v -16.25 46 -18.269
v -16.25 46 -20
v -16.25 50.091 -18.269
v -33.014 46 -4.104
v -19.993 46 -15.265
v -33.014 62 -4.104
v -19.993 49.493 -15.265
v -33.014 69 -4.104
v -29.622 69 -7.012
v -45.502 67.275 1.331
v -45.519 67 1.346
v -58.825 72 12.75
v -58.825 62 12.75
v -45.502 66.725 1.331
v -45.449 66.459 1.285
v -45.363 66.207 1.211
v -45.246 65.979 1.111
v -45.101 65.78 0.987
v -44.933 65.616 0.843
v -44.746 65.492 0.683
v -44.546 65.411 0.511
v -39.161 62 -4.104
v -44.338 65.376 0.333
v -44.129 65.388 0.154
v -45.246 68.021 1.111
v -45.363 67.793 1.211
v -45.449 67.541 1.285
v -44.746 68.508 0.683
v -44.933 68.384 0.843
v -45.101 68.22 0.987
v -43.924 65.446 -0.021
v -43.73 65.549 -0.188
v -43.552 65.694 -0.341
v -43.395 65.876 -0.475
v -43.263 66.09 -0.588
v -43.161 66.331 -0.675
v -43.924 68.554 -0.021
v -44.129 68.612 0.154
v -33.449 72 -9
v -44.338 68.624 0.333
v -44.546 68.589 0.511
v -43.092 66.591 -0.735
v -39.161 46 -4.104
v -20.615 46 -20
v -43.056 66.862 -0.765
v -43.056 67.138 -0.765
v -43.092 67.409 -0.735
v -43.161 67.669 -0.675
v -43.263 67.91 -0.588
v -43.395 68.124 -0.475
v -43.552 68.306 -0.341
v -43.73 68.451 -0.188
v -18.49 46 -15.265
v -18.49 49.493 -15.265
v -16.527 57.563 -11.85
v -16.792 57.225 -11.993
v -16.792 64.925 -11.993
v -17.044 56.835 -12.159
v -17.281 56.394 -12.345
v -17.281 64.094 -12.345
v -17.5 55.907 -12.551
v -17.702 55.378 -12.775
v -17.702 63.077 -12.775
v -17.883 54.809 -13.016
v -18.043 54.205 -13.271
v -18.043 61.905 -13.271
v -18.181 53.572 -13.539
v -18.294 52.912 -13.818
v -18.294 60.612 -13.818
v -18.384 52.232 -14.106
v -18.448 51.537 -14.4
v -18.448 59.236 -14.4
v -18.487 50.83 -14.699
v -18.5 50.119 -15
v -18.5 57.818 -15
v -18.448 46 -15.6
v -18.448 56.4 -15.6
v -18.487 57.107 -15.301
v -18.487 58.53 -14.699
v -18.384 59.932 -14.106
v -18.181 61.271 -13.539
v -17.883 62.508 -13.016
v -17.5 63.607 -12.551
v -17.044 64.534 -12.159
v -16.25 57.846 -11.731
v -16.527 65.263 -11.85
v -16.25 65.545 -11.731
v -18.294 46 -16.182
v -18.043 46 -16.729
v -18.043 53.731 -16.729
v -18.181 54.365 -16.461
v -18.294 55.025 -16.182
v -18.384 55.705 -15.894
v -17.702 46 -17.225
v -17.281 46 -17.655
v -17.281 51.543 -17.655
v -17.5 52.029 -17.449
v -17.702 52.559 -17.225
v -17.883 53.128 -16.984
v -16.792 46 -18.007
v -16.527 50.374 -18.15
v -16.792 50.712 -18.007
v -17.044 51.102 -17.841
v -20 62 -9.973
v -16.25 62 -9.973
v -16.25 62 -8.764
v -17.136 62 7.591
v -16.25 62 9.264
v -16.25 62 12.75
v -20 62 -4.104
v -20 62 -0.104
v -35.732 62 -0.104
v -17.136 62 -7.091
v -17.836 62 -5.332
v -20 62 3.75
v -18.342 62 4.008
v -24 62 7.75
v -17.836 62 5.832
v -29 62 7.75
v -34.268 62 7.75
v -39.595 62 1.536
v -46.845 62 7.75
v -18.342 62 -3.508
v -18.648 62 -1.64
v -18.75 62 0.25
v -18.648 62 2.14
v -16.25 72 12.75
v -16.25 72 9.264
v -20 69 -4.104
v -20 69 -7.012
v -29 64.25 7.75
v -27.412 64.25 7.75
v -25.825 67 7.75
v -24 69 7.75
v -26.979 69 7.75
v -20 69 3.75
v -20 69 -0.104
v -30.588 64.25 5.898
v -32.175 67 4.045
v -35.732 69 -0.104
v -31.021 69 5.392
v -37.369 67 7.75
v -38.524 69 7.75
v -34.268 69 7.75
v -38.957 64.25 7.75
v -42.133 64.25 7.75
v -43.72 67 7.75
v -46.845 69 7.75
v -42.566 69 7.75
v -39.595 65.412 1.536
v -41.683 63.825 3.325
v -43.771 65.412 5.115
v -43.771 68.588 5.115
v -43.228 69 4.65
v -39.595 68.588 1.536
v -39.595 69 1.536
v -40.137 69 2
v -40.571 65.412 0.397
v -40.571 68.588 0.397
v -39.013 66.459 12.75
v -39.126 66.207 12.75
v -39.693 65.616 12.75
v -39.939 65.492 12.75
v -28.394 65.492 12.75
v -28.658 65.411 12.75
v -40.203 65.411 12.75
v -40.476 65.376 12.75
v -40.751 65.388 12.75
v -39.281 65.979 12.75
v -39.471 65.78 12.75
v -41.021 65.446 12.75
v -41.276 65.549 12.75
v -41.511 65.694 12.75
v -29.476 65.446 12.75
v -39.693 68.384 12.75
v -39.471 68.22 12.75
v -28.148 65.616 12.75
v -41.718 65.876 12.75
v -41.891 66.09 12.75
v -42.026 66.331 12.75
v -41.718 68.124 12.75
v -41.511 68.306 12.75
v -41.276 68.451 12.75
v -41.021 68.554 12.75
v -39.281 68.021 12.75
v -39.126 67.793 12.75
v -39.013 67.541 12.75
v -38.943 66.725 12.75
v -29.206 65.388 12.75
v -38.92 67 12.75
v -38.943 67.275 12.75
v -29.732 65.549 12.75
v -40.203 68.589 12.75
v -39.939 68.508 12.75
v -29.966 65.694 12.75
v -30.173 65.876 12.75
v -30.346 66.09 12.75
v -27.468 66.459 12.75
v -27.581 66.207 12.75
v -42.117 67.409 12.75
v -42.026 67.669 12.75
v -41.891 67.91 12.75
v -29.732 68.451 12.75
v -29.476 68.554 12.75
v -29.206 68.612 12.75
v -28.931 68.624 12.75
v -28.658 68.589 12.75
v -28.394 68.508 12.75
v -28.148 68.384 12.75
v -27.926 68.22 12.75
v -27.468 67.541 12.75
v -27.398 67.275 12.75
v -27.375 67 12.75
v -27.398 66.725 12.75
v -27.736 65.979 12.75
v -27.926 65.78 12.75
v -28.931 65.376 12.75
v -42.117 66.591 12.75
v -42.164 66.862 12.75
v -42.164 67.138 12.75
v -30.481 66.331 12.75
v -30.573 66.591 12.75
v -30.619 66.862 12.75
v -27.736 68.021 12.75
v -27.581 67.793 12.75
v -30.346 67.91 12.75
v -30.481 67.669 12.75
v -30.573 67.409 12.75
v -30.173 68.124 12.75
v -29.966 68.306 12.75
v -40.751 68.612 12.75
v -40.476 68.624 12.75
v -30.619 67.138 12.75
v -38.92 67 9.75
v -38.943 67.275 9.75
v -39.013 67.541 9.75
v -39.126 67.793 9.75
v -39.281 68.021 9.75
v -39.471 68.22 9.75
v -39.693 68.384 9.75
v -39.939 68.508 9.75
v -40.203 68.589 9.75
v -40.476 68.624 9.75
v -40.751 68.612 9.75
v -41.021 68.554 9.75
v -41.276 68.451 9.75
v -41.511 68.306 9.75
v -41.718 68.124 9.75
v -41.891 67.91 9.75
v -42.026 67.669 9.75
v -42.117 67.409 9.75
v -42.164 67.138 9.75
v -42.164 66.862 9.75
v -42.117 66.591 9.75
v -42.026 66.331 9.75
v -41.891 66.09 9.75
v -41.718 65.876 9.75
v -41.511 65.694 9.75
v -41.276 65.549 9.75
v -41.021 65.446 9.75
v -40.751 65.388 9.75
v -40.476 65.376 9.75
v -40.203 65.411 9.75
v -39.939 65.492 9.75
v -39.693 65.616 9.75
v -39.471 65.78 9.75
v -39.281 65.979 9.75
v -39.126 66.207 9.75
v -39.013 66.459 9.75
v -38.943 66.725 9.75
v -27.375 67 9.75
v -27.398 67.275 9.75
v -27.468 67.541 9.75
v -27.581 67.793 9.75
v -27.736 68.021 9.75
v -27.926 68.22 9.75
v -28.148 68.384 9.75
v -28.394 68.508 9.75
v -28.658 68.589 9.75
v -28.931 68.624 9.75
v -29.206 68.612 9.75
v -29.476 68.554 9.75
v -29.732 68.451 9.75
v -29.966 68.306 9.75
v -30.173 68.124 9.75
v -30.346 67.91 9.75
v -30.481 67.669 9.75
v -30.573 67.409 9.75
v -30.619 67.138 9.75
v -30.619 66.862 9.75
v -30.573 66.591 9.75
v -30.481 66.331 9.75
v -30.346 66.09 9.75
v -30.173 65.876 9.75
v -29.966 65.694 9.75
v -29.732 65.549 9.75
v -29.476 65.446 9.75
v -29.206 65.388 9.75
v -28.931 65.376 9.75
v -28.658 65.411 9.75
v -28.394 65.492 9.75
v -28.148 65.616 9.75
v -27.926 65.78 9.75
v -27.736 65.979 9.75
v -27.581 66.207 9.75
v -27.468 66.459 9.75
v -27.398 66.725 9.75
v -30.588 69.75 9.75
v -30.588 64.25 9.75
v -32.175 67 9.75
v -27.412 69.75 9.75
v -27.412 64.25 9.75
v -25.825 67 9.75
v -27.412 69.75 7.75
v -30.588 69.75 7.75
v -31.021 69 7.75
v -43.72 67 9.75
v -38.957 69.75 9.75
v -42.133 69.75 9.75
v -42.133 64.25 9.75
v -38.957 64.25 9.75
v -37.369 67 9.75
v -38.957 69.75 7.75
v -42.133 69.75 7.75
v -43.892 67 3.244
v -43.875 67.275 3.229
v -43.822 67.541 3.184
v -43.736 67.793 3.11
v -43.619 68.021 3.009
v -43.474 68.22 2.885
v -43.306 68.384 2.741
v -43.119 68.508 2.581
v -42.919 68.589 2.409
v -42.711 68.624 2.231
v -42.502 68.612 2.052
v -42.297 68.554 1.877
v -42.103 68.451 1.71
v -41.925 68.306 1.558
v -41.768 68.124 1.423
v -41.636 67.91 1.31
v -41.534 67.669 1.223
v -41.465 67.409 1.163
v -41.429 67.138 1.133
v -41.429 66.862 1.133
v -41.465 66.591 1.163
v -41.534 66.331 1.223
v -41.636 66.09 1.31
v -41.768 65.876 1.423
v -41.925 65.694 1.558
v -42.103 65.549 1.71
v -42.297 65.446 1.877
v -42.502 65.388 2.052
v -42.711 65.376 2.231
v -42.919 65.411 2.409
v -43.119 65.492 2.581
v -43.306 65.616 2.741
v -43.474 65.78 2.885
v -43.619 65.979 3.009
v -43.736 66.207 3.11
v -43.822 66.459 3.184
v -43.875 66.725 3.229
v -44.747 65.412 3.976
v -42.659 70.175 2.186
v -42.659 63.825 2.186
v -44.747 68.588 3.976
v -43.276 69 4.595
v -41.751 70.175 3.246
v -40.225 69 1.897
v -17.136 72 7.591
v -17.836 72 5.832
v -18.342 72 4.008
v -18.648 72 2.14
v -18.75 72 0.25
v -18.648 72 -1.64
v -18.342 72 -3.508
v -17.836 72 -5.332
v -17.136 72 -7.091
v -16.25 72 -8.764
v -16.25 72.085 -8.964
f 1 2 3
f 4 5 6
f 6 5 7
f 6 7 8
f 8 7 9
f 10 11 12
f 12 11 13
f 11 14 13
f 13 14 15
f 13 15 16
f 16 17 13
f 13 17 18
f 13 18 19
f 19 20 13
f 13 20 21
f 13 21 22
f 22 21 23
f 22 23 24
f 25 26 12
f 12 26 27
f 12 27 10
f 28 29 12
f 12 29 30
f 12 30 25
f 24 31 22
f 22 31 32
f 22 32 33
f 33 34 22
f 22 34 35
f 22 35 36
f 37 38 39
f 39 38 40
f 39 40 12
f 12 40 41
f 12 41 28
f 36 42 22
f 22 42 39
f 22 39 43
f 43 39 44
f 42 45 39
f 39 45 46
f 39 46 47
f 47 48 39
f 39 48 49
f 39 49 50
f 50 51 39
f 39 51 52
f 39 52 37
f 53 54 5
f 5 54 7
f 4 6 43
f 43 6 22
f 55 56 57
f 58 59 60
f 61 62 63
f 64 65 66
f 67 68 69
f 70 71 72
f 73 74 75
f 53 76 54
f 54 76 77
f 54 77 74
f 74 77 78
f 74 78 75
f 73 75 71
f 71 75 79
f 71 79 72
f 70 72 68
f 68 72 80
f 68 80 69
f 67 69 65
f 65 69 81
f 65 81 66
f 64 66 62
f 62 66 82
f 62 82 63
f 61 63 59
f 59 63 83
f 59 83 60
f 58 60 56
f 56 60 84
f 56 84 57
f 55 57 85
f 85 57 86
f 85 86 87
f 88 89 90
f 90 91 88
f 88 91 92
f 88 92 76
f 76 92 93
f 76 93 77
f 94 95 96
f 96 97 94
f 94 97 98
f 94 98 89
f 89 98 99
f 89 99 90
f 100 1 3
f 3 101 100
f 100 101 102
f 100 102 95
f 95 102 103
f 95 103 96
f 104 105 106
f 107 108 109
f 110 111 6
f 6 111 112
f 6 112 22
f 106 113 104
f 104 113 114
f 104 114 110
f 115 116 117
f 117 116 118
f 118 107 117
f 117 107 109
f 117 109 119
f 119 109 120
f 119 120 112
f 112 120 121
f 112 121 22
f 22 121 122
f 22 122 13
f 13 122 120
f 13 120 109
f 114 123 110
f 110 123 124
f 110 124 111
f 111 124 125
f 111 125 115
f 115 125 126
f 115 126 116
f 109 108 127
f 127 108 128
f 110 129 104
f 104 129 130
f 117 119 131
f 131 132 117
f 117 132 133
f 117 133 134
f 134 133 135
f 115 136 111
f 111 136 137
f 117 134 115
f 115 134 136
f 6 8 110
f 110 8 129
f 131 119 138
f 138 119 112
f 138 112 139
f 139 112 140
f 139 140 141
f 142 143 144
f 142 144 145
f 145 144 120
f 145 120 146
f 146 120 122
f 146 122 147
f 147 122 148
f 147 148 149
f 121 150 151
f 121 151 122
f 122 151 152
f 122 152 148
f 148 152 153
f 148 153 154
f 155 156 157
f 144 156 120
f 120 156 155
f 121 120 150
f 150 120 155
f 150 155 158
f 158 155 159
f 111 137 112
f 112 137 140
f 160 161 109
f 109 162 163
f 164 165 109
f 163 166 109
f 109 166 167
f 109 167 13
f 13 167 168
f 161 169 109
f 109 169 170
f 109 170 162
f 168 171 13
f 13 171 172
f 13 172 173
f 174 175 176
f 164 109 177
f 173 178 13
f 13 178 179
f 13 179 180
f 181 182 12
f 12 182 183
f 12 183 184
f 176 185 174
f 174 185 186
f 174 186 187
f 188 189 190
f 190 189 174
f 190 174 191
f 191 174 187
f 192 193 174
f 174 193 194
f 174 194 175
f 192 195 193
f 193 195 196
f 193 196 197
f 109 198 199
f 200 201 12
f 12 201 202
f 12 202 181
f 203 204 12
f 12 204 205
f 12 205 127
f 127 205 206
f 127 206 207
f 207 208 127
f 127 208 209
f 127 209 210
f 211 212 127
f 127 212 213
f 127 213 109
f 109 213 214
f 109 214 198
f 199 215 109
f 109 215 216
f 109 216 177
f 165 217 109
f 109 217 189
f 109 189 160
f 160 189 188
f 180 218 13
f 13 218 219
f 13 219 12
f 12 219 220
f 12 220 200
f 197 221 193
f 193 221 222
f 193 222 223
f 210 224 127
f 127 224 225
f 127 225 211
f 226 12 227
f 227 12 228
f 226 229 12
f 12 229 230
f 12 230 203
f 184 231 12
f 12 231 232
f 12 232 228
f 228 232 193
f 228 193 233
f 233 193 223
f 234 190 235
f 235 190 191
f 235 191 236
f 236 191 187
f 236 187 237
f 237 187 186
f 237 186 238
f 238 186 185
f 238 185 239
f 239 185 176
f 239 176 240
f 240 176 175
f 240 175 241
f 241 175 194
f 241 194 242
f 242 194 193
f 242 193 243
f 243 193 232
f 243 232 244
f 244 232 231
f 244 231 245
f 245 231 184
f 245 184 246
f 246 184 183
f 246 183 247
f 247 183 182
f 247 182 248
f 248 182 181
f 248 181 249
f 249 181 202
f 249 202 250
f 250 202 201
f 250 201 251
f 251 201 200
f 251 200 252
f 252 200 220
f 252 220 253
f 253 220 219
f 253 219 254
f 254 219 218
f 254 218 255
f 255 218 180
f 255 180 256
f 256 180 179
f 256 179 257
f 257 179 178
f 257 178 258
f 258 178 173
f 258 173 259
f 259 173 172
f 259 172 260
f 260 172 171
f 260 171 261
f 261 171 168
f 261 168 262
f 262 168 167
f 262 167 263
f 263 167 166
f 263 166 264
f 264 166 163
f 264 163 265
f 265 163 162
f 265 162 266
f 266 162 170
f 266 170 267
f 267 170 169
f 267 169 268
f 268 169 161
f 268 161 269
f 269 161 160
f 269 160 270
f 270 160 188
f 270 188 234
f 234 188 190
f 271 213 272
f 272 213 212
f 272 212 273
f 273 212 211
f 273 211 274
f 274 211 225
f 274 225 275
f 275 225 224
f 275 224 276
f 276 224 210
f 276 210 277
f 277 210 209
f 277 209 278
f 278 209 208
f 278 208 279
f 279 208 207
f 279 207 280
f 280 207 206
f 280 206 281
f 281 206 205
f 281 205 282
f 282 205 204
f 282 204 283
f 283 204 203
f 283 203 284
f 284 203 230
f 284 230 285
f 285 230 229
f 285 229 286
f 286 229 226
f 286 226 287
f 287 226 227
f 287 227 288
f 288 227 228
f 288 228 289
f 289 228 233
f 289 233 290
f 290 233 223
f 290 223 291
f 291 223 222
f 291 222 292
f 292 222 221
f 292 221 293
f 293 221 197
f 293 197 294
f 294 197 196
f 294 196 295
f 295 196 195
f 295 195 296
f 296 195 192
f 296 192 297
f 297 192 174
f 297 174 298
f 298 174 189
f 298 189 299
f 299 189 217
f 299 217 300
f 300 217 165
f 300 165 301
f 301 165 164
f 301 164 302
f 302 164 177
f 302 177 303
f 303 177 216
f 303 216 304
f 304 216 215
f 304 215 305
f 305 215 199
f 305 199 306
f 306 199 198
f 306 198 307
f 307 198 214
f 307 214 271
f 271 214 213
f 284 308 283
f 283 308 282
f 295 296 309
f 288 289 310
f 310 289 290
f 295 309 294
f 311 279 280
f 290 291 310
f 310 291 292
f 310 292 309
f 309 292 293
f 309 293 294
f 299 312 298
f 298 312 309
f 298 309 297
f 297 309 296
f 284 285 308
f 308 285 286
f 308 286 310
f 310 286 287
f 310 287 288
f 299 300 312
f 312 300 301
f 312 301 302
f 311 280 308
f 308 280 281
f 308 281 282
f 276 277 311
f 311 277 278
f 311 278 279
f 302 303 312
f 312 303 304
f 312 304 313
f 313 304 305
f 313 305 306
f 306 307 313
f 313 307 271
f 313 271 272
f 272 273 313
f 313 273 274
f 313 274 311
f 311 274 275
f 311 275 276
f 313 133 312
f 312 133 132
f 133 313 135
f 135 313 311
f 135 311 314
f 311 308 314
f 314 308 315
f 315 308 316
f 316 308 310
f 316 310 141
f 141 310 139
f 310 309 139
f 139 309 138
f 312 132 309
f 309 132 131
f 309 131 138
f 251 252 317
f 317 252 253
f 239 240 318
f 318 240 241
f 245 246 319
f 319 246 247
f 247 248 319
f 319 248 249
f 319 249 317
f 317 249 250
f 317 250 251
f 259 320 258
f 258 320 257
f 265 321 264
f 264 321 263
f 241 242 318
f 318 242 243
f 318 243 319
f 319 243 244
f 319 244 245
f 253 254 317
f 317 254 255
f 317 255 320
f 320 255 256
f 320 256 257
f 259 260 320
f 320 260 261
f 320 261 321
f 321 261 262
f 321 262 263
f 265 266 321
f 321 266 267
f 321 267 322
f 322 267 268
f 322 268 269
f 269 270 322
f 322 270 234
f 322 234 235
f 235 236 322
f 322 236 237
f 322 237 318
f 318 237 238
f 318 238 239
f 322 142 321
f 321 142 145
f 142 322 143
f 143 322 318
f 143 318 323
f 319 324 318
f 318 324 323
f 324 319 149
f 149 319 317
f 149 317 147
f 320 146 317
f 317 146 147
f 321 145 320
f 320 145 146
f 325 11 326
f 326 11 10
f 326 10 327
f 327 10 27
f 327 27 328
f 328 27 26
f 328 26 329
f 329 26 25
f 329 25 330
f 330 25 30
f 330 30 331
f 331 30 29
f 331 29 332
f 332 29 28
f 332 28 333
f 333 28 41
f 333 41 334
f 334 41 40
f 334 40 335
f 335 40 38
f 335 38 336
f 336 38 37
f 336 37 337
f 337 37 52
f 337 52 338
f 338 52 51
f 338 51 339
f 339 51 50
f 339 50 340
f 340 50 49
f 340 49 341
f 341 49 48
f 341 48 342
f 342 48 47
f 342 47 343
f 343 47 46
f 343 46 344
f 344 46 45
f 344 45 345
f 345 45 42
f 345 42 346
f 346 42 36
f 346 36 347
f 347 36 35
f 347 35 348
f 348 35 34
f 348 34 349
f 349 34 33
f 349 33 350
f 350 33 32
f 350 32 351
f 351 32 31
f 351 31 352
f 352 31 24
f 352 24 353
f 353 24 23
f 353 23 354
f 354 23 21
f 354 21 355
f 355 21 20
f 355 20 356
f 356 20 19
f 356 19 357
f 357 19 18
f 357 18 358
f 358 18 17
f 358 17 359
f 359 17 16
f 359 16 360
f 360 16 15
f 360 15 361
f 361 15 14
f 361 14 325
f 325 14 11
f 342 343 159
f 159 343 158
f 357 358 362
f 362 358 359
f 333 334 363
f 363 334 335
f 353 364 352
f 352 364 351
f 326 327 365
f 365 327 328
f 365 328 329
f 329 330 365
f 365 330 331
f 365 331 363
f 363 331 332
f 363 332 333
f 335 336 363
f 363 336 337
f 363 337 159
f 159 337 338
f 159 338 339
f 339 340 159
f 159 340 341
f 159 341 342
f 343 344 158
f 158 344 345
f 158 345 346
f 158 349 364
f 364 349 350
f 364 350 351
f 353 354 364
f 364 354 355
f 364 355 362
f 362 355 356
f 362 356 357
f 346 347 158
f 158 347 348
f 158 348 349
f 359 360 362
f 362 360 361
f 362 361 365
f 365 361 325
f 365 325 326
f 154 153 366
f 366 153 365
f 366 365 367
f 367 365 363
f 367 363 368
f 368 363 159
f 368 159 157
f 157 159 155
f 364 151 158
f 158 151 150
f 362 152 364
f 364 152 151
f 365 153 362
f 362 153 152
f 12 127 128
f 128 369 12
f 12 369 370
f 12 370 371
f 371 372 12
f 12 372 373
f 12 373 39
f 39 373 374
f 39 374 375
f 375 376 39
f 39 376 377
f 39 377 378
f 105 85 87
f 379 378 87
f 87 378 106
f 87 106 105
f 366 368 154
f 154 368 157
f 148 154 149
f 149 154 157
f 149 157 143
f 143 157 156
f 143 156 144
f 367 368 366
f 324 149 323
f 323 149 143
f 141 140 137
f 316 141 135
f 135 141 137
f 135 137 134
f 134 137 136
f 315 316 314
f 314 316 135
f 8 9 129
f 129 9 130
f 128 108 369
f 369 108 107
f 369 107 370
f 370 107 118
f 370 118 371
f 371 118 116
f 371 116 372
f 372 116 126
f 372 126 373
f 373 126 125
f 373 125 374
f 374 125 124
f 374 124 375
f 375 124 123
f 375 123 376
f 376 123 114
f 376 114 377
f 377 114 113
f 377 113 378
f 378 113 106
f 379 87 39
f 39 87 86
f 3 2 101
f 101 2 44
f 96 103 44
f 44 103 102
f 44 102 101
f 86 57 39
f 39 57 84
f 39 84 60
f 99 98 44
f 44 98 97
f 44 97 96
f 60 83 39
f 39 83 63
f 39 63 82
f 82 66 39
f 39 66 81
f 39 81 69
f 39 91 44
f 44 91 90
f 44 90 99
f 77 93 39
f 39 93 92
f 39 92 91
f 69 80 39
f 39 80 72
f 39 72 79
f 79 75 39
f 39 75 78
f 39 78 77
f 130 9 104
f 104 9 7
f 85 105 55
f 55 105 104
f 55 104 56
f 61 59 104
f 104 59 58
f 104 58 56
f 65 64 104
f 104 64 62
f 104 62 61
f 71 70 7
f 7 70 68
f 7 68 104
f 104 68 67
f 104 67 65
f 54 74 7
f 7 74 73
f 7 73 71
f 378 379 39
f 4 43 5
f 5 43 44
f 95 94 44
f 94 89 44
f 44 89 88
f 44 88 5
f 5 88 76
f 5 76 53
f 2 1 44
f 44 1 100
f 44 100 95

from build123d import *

# Parameters (mm, degrees)
CROQUIS1_R                              = 15.25
CROQUIS1_R_2                            = 2.125
SOPORTE_CAJA_REDUCTORA_DEPTH            = 20
CROQUIS3_R                              = 2.125
CORTAR_EXTRUIR1_DEPTH                   = 51.423828692
REDONDEO1_R                             = 5
BOSS_EXTRUDE1_DEPTH                     = 20
CUT_EXTRUDE1_REACH                      = 55.852
SKETCH2_R                               = 1.625
CUT_EXTRUDE2_DEPTH                      = 2
SKETCH4_R                               = 1.625
CUT_EXTRUDE3_DEPTH                      = 63.291652731
CUT_EXTRUDE4_START                      = -4.5
CUT_EXTRUDE4_DEPTH                      = 2
CROQUIS6_W                              = 4.75
CROQUIS6_H                              = 4.75
CORTAR_EXTRUIR17_DEPTH                  = 42.231056256
CROQUIS7_W                              = 60
CROQUIS7_H                              = 20
CORTAR_EXTRUIR18_DEPTH                  = 51.423828692
SALIENTE_EXTRUIR2_DEPTH                 = 49
SOPORTE_START                           = -15
SOPORTE_MOTOR_DEPTH                     = 15
CROQUIS12_R                             = 2.125
AGUJEROS_DE_SUJECION_A_BASE_DEPTH       = 84.087679592
TUERCA_START                            = -4
TUERCA_AGUJERO_DE_SUJECION_A_BASE_DEPTH = 10
SALIENTE_EXTRUIR4_DEPTH                 = 15
CORTAR_EXTRUIR19_DEPTH                  = 25
CROQUIS14_W                             = 50
CROQUIS14_H                             = 118
CORTAR_EXTRUIR22_DEPTH                  = 146.556045907
CROQUIS15_W                             = 10
CROQUIS15_H                             = 7
CORTAR_EXTRUIR23_DEPTH                  = 42.231056256
CORTAR_EXTRUIR24_DEPTH                  = 42.231056256
CROQUIS18_W                             = 40
CROQUIS18_H                             = 10
CORTAR_EXTRUIR25_DEPTH                  = 44.27311521
SALIENTE_EXTRUIR5_DEPTH                 = 10
CROQUIS20_R                             = 1
CORTAR_EXTRUIR26_DEPTH                  = 49.229270158
CORTAR_EXTRUIR27_REACH                  = 62.959
CORTAR_EXTRUIR27_END_RADIUS             = 15.25
CROQUIS21_R                             = 1.625
CROQUIS22_R                             = 2.125
CROQUIS22_R_2                           = 1
SALIENTE_EXTRUIR6_DEPTH                 = 10
CROQUIS23_R                             = 1.625
CORTAR_EXTRUIR28_DEPTH                  = 52.269508521
CORTAR_EXTRUIR29_START                  = -3
CORTAR_EXTRUIR29_DEPTH                  = 10
SALIENTE_EXTRUIR7_DEPTH                 = 10
CORTAR_EXTRUIR30_REACH                  = 72.235
CROQUIS27_R                             = 1.625
CORTAR_EXTRUIR31_REACH                  = 75.235
CORTAR_EXTRUIR31_START                  = -3
CORTAR_EXTRUIR32_REACH                  = 58.612
CROQUIS29_R                             = 1.625
CORTAR_EXTRUIR33_REACH                  = 61.112
CORTAR_EXTRUIR33_START                  = -2.5
CROQUIS35_W                             = 13.305418987
CROQUIS35_H                             = 6.826864192
CORTAR_EXTRUIR34_DEPTH                  = 63.931555098
CORTAR_EXTRUIR34_DEPTH_BACK             = 63.931555098
CORTAR_EXTRUIR35_START                  = -3
CORTAR_EXTRUIR35_DEPTH                  = 10
SALIENTE_EXTRUIR8_DEPTH                 = 10
SALIENTE_EXTRUIR9_DEPTH                 = 13
SALIENTE_EXTRUIR10_DEPTH                = 3
CROQUIS40_W                             = 106.583537839
CROQUIS40_H                             = 47.391515964
CORTAR_EXTRUIR36_DEPTH                  = 80.887064817
CORTAR_EXTRUIR36_DEPTH_BACK             = 80.887064817
CROQUIS41_W                             = 24.558856908
CROQUIS41_H                             = 18.206234432
CORTAR_EXTRUIR37_DEPTH                  = 80.887064817
CORTAR_EXTRUIR37_DEPTH_BACK             = 80.887064817
CROQUIS42_W                             = 39.793611955
CROQUIS42_H                             = 36.552695193
CORTAR_EXTRUIR38_DEPTH                  = 63.931555082
CORTAR_EXTRUIR38_DEPTH_BACK             = 63.931555082
SALIENTE_EXTRUIR11_DEPTH                = 3
CROQUIS44_R                             = 17.5
CORTAR_EXTRUIR39_DEPTH                  = 63.931555082
CORTAR_EXTRUIR39_DEPTH_BACK             = 63.931555082
SALIENTE_EXTRUIR12_DEPTH                = 16
CORTAR_EXTRUIR40_DEPTH                  = 66.79232953
SALIENTE_EXTRUIR14_DEPTH                = 3
CROQUIS48_R                             = 17.5
CORTAR_EXTRUIR41_DEPTH                  = 68.352658633
CORTAR_EXTRUIR41_DEPTH_BACK             = 68.352658633
CROQUIS49_R                             = 3.5
CORTAR_EXTRUIR42_DEPTH                  = 68.352658633
CROQUIS50_W                             = 95.776732481
CROQUIS50_H                             = 51.661294246
CORTAR_EXTRUIR43_DEPTH                  = 90.449033504
CORTAR_EXTRUIR43_DEPTH_BACK             = 90.449033504


with BuildPart() as part:
    # Croquis1 → Soporte caja reductora (new body)
    with BuildSketch(Plane(origin=(0, 0, 0), x_dir=(1, 0, 0), z_dir=(0, 1, 0))):
        Polygon((-30, -15.25), (-20, -15.25), (-20, -20), (20, -20), (20, -15.25), (30, -15.25), (30, -7.25), (20, -4.25), (20, 20), (-20, 20), (-20, -4.25), (-30, -7.25), align=None)
        with Locations(Location((0, 0, 0), (0, 0, 270))):
            Circle(CROQUIS1_R, mode=Mode.SUBTRACT)
        with Locations(Location((-15, 15, 0), (0, 0, 270))):
            Circle(CROQUIS1_R_2, mode=Mode.SUBTRACT)
        with Locations(Location((15, 15, 0), (0, 0, 270))):
            Circle(CROQUIS1_R_2, mode=Mode.SUBTRACT)
    extrude(amount=-SOPORTE_CAJA_REDUCTORA_DEPTH)

    # Croquis3 → Cortar-Extruir1 (cut, through all)
    with BuildSketch(Plane.XY.offset(15.25)):
        with Locations((-23.5, -10)):
            Circle(CROQUIS3_R)
        with Locations((23.5, -10)):
            Circle(CROQUIS3_R)
    extrude(amount=-CORTAR_EXTRUIR1_DEPTH, mode=Mode.SUBTRACT)

    # Redondeo1
    redondeo1_edges = [part.edges().sort_by_distance(p)[0] for p in [
        (-20, -10, -20),
        (20, -10, -20),
    ]]
    fillet(redondeo1_edges, radius=REDONDEO1_R)

    # Sketch1 → Boss-Extrude1 (add)
    with BuildSketch(Plane(origin=(0, 0, 0), x_dir=(1, 0, 0), z_dir=(0, 1, 0))):
        with BuildLine():
            Line((25.5, 15), (20, 15))
            ThreePointArc((20, 15), (18.535533906, 18.535533906), (15, 20))
            Line((15, 20), (30, 20))
            Line((30, 20), (30, 8))
            Line((30, 8), (25.5, 8))
            Line((25.5, 8), (25.5, 15))
        make_face()
    extrude(amount=-BOSS_EXTRUDE1_DEPTH)

    # Sketch2 → Cut-Extrude1 (cut, up to next)
    with BuildSketch(Plane(origin=(0, 0, -20), x_dir=(-1, 0, 0), z_dir=(0, 0, -1)), mode=Mode.PRIVATE) as cut_extrude1_sk1:
        with Locations((-22.75, -10)):
            Circle(SKETCH2_R)
    cut_extrude1_tool1 = extrude(cut_extrude1_sk1.sketch, amount=-CUT_EXTRUDE1_REACH, mode=Mode.PRIVATE) & part.part
    add(cut_extrude1_tool1.solids().sort_by_distance((22.75, -10, -20))[0], mode=Mode.SUBTRACT)

    # Sketch3 → Cut-Extrude2 (cut)
    with BuildSketch(Plane.XY.offset(-15)):
        Polygon((20, -11.58771324), (22.75, -13.175426481), (25.5, -11.58771324), (25.5, -8.41228676), (22.75, -6.824573519), (20, -8.41228676), align=None)
    extrude(amount=-CUT_EXTRUDE2_DEPTH, mode=Mode.SUBTRACT)

    # Sketch4 → Cut-Extrude3 (cut, through all)
    with BuildSketch(Plane.ZY.offset(-25.5)):
        with Locations((-12.25, -10)):
            Circle(SKETCH4_R)
    extrude(amount=-CUT_EXTRUDE3_DEPTH, mode=Mode.SUBTRACT)

    # Sketch5 → Cut-Extrude4 (cut)
    with BuildSketch(Plane(origin=(30, 0, 0), x_dir=(0, 0, -1), z_dir=(1, 0, 0)).offset(CUT_EXTRUDE4_START)):
        Polygon((15, -11.58771324), (15, -8.41228676), (12.25, -6.824573519), (9.5, -8.41228676), (9.5, -11.58771324), (12.25, -13.175426481), align=None)
    extrude(amount=CUT_EXTRUDE4_DEPTH, mode=Mode.SUBTRACT)

    # Croquis6 → Cortar-Extruir17 (cut, through all)
    with BuildSketch(Plane(origin=(0, 0, 0), x_dir=(1, 0, 0), z_dir=(0, 1, 0))):
        Polygon((0, -15.25), (-15.25, -15.25), (-15.25, -20), (15.25, -20), (15.25, -15.25), align=None)
        with Locations((-17.625, -17.625)):
            Rectangle(CROQUIS6_W, CROQUIS6_H)
        with BuildLine():
            ThreePointArc((0, -15.25), (-10.783378413, -10.783378413), (-15.25, 0))
            Line((-15.25, 0), (-15.25, -15.25))
            Line((-15.25, -15.25), (0, -15.25))
        make_face()
        with BuildLine():
            Line((15.25, -15.25), (15.25, 0))
            ThreePointArc((15.25, 0), (10.783378413, -10.783378413), (0, -15.25))
            Line((0, -15.25), (15.25, -15.25))
        make_face()
        with Locations((17.625, -17.625)):
            Rectangle(CROQUIS6_W, CROQUIS6_H)
    extrude(amount=-CORTAR_EXTRUIR17_DEPTH, mode=Mode.SUBTRACT)


with BuildPart() as body_2:
    # Simetría1: mirrored copy
    add(part.part.mirror(Plane.ZX))

    # Croquis8 → Saliente-Extruir2 (add)
    with BuildSketch(Plane(origin=(0, 20, 0), x_dir=(1, 0, 0), z_dir=(0, 1, 0))):
        with BuildLine():
            Line((-12.664515522, 20), (-11.040489496, 13.939052358))
            Line((-11.040489496, 13.939052358), (-10.315162126, 11.232093763))
            ThreePointArc((-10.315162126, 11.232093763), (0, 15.25), (10.315162126, 11.232093763))
            Line((10.315162126, 11.232093763), (10.817418481, 13.87928066))
            Line((10.817418481, 13.87928066), (11.978715476, 20))
            Line((11.978715476, 20), (-12.664515522, 20))
        make_face()
    extrude(amount=SALIENTE_EXTRUIR2_DEPTH)

    # Croquis9 → Soporte motor (add)
    with BuildSketch(Plane(origin=(0, 69, 0), x_dir=(1, 0, 0), z_dir=(0, 1, 0)).offset(SOPORTE_START)):
        with BuildLine():
            Line((-20, 15), (-20, -4.25))
            Line((-20, -4.25), (-30, -7.25))
            Line((-30, -7.25), (-30, -15.25))
            Line((-30, -15.25), (0, -15.25))
            Line((0, -15.25), (0, -14.75))
            ThreePointArc((0, -14.75), (-10.429825023, 10.429825023), (14.75, 0))
            Line((14.75, 0), (20, 0))
            Line((20, 0), (20, 13.936837101))
            Line((20, 13.936837101), (12.664515522, 20))
            Line((12.664515522, 20), (-15, 20))
            ThreePointArc((-15, 20), (-18.535533906, 18.535533906), (-20, 15))
        make_face()
    extrude(amount=-SOPORTE_MOTOR_DEPTH)

    # Croquis12 → Agujeros de sujecion a base (cut, through all)
    with BuildSketch(Plane.XY.offset(15.25)):
        with Locations((-23.5, 46.5)):
            Circle(CROQUIS12_R)
    extrude(amount=-AGUJEROS_DE_SUJECION_A_BASE_DEPTH, mode=Mode.SUBTRACT)

    # Croquis13 → Tuerca Agujero de sujecion a base (cut)
    with BuildSketch(Plane.XY.offset(15.25).offset(TUERCA_START)):
        Polygon((-20, 44.479274058), (-20, 48.520725942), (-23.5, 50.541451884), (-27, 48.520725942), (-27, 44.479274058), (-23.5, 42.458548116), align=None)
    extrude(amount=-TUERCA_AGUJERO_DE_SUJECION_A_BASE_DEPTH, mode=Mode.SUBTRACT)

    # Croquis10 → Saliente-Extruir4 (add)
    with BuildSketch(Plane(origin=(0, 69, 0), x_dir=(1, 0, 0), z_dir=(0, 1, 0))):
        with BuildLine():
            ThreePointArc((10.315162126, 11.232093763), (0, 15.25), (-10.315162126, 11.232093763))
            Line((-10.315162126, 11.232093763), (-10.16850369, 10.684757026))
            ThreePointArc((-10.16850369, 10.684757026), (0, 14.75), (10.16850369, 10.684757026))
            Line((10.16850369, 10.684757026), (10.315162126, 11.232093763))
        make_face()
    extrude(amount=-SALIENTE_EXTRUIR4_DEPTH)

    # Croquis11 → Cortar-Extruir19 (cut)
    with BuildSketch(Plane.XZ):
        with BuildLine():
            Line((15.25, 4.25), (20, 4.25))
            Line((20, 4.25), (21.972856468, 4.84185694))
            ThreePointArc((21.972856468, 4.84185694), (19.948931102, 10.40625523), (16.543503257, 15.25))
            Line((16.543503257, 15.25), (15.25, 15.25))
            Line((15.25, 15.25), (15.25, 4.25))
        make_face()
        with BuildLine():
            Line((21.972856468, 4.84185694), (30, 7.25))
            Line((30, 7.25), (30, 15.25))
            Line((30, 15.25), (16.543503257, 15.25))
            ThreePointArc((16.543503257, 15.25), (19.948931102, 10.40625523), (21.972856468, 4.84185694))
        make_face()
        with BuildLine():
            ThreePointArc((20, -15), (18.535533906, -18.535533906), (15, -20))
            Line((15, -20), (30, -20))
            Line((30, -20), (30, -8))
            Line((30, -8), (25.5, -8))
            Line((25.5, -8), (25.5, -15))
            Line((25.5, -15), (20, -15))
        make_face()
    extrude(amount=-CORTAR_EXTRUIR19_DEPTH, mode=Mode.SUBTRACT)

    # Simetría2: body 2 across face


with BuildPart() as part_1:
    add(part.part)

    # Croquis7 → Cortar-Extruir18 (cut, through all)
    with BuildSketch(Plane(origin=(0, 0, -20), x_dir=(-1, 0, 0), z_dir=(0, 0, -1))):
        with Locations((0, -10)):
            Rectangle(CROQUIS7_W, CROQUIS7_H)
    extrude(amount=-CORTAR_EXTRUIR18_DEPTH, mode=Mode.SUBTRACT)


with BuildPart() as body_2_1:
    add(body_2.part)
    add(body_2.part.mirror(Plane(origin=(-0.229209569, 69, -16.663998028), x_dir=(0, 0, 1), z_dir=(0, 1, 0))))

    # Croquis14 → Cortar-Extruir22 (cut, through all)
    with BuildSketch(Plane.XY.offset(15.25)):
        with Locations((-5, 79)):
            Rectangle(CROQUIS14_W, CROQUIS14_H)
    extrude(amount=-CORTAR_EXTRUIR22_DEPTH, mode=Mode.SUBTRACT)

    # Croquis15 → Cortar-Extruir23 (cut, through all)
    with BuildSketch(Plane.XZ):
        with Locations((-25, 7.75)):
            Rectangle(CROQUIS15_W, CROQUIS15_H)
    extrude(amount=-CORTAR_EXTRUIR23_DEPTH, mode=Mode.SUBTRACT)

    # Croquis16 → Cortar-Extruir24 (cut, through all)
    with BuildSketch(Plane.XZ):
        Polygon((-30, 15.25), (-15.25, 15.25), (-15.25, 12.75), (-20, 12.75), (-20, 11.25), (-30, 11.25), (-30, 12.75), align=None)
    extrude(amount=-CORTAR_EXTRUIR24_DEPTH, mode=Mode.SUBTRACT)

    # Croquis18 → Cortar-Extruir25 (cut, through all)
    with BuildSketch(Plane(origin=(0, 0, -20), x_dir=(-1, 0, 0), z_dir=(0, 0, -1))):
        with Locations((0, 5)):
            Rectangle(CROQUIS18_W, CROQUIS18_H)
    extrude(amount=-CORTAR_EXTRUIR25_DEPTH, mode=Mode.SUBTRACT)

    # Croquis19 → Saliente-Extruir5 (add)
    with BuildSketch(Plane(origin=(0, 20, 0), x_dir=(1, 0, 0), z_dir=(0, 1, 0))):
        Polygon((-20, -12.75), (-34, -12.75), (-34, -7.75), (-24, -7.75), (-20, -3.75), align=None)
    extrude(amount=-SALIENTE_EXTRUIR5_DEPTH)

    # Croquis20 → Cortar-Extruir26 (cut, through all)
    with BuildSketch(Plane(origin=(0, 0, 7.75), x_dir=(-1, 0, 0), z_dir=(0, 0, -1))):
        with Locations((29, 15)):
            Circle(CROQUIS20_R)
    extrude(amount=-CORTAR_EXTRUIR26_DEPTH, mode=Mode.SUBTRACT)

    # Cortar-Extruir27: up to this cylinder (the profile starts outside it)
    cortar_extruir27_end = Plane(origin=(0, 15, 0), z_dir=(0, -1, 0)) * Cylinder(CORTAR_EXTRUIR27_END_RADIUS, 157.418, mode=Mode.PRIVATE)
    # Croquis21 → Cortar-Extruir27 (cut, up to the surface)
    with BuildSketch(Plane(origin=(20, 0, 0), x_dir=(0, 0, -1), z_dir=(1, 0, 0)), mode=Mode.PRIVATE) as cortar_extruir27_sk1:
        with Locations((4.75, 15)):
            Circle(CROQUIS21_R)
    cortar_extruir27_tool1 = extrude(cortar_extruir27_sk1.sketch, amount=-CORTAR_EXTRUIR27_REACH, mode=Mode.PRIVATE) - cortar_extruir27_end
    add(cortar_extruir27_tool1.solids().sort_by_distance((20, 15, -4.75))[0], mode=Mode.SUBTRACT)

    # Croquis22 → Saliente-Extruir6 (add)
    with BuildSketch(Plane.XZ.offset(-10)):
        with Locations((-15, -15)):
            Circle(CROQUIS22_R)
        with Locations(Location((-15, -15, 0), (0, 0, 270))):
            Circle(CROQUIS22_R_2, mode=Mode.SUBTRACT)
        with Locations((15, -15)):
            Circle(CROQUIS22_R)
        with Locations(Location((15, -15, 0), (0, 0, 270))):
            Circle(CROQUIS22_R_2, mode=Mode.SUBTRACT)
    extrude(amount=-SALIENTE_EXTRUIR6_DEPTH)

    # Croquis23 → Cortar-Extruir28 (cut, through all)
    with BuildSketch(Plane(origin=(0, 0, -20), x_dir=(-1, 0, 0), z_dir=(0, 0, -1))):
        with Locations((0, 15)):
            Circle(CROQUIS23_R)
    extrude(amount=-CORTAR_EXTRUIR28_DEPTH, mode=Mode.SUBTRACT)

    # Croquis24 → Cortar-Extruir29 (cut)
    with BuildSketch(Plane(origin=(0, 0, -20), x_dir=(-1, 0, 0), z_dir=(0, 0, -1)).offset(CORTAR_EXTRUIR29_START)):
        Polygon((1.58771324, 12.25), (3.175426481, 15), (1.58771324, 17.75), (-1.58771324, 17.75), (-3.175426481, 15), (-1.58771324, 12.25), align=None)
    extrude(amount=-CORTAR_EXTRUIR29_DEPTH, mode=Mode.SUBTRACT)

    # Croquis26 → Saliente-Extruir7 (add)
    with BuildSketch(Plane.XZ.offset(-10)):
        Polygon((-34, 7.75), (-34, 12.75), (-58.825, 12.75), (-39.160527763, -4.104491148), (-20, -4.104491148), (-20, -0.104491148), (-35.732113118, -0.104491148), (-29, 7.75), align=None)
        Polygon((-34.268209086, 7.75), (-39.594516123, 1.535690951), (-46.844874897, 7.75), align=None, mode=Mode.SUBTRACT)
    extrude(amount=-SALIENTE_EXTRUIR7_DEPTH)

    # Croquis27 → Cortar-Extruir30 (cut, up to next)
    with BuildSketch(Plane.XY.offset(12.75), mode=Mode.PRIVATE) as cortar_extruir30_sk1:
        with Locations((-40.544874897, 15)):
            Circle(CROQUIS27_R)
    cortar_extruir30_tool1 = extrude(cortar_extruir30_sk1.sketch, amount=-CORTAR_EXTRUIR30_REACH, mode=Mode.PRIVATE) & body_2_1.part
    # Croquis27 → Cortar-Extruir30 (cut, up to next)
    with BuildSketch(Plane.XY.offset(12.75), mode=Mode.PRIVATE) as cortar_extruir30_sk2:
        with Locations((-29, 15)):
            Circle(CROQUIS27_R)
    cortar_extruir30_tool2 = extrude(cortar_extruir30_sk2.sketch, amount=-CORTAR_EXTRUIR30_REACH, mode=Mode.PRIVATE) & body_2_1.part
    add(cortar_extruir30_tool1.solids().sort_by_distance((-40.544875, 15, 12.75))[0], mode=Mode.SUBTRACT)
    add(cortar_extruir30_tool2.solids().sort_by_distance((-29, 15, 12.75))[0], mode=Mode.SUBTRACT)

    # Croquis28 → Cortar-Extruir31 (cut, up to next)
    with BuildSketch(Plane.XY.offset(12.75).offset(CORTAR_EXTRUIR31_START), mode=Mode.PRIVATE) as cortar_extruir31_sk1:
        Polygon((-38.957161657, 12.25), (-37.369448416, 15), (-38.957161657, 17.75), (-42.132588137, 17.75), (-43.720301378, 15), (-42.132588137, 12.25), align=None)
    cortar_extruir31_tool1 = extrude(cortar_extruir31_sk1.sketch, amount=-CORTAR_EXTRUIR31_REACH, mode=Mode.PRIVATE) & body_2_1.part
    # Croquis28 → Cortar-Extruir31 (cut, up to next)
    with BuildSketch(Plane.XY.offset(12.75).offset(CORTAR_EXTRUIR31_START), mode=Mode.PRIVATE) as cortar_extruir31_sk2:
        Polygon((-27.41228676, 12.25), (-25.824573519, 15), (-27.41228676, 17.75), (-30.58771324, 17.75), (-32.175426481, 15), (-30.58771324, 12.25), align=None)
    cortar_extruir31_tool2 = extrude(cortar_extruir31_sk2.sketch, amount=-CORTAR_EXTRUIR31_REACH, mode=Mode.PRIVATE) & body_2_1.part
    add(cortar_extruir31_tool1.solids().sort_by_distance((-40.544875, 15, 9.75))[0], mode=Mode.SUBTRACT)
    add(cortar_extruir31_tool2.solids().sort_by_distance((-29, 15, 9.75))[0], mode=Mode.SUBTRACT)

    # Croquis29 → Cortar-Extruir32 (cut, up to next)
    with BuildSketch(Plane(origin=(-18.612848159, 0, -21.715982563), x_dir=(-0.7592713073348843, 0, 0.6507742172658468), z_dir=(-0.6507742172658468, 0, -0.7592713073348843)), mode=Mode.PRIVATE) as cortar_extruir32_sk1:
        with Locations((33.812368097, 15)):
            Circle(CROQUIS29_R)
    cortar_extruir32_tool1 = extrude(cortar_extruir32_sk1.sketch, amount=-CORTAR_EXTRUIR32_REACH, mode=Mode.PRIVATE) & body_2_1.part
    add(cortar_extruir32_tool1.solids().sort_by_distance((-44.285609, 15, 0.288235))[0], mode=Mode.SUBTRACT)

    # Croquis31 → Cortar-Extruir33 (cut, up to next)
    with BuildSketch(Plane(origin=(-18.612848159, 0, -21.715982563), x_dir=(-0.7592713073348843, 0, 0.6507742172658468), z_dir=(-0.6507742172658468, 0, -0.7592713073348843)).offset(CORTAR_EXTRUIR33_START), mode=Mode.PRIVATE) as cortar_extruir33_sk1:
        Polygon((36.562368097, 16.58771324), (33.812368097, 18.175426481), (31.062368097, 16.58771324), (31.062368097, 13.41228676), (33.812368097, 11.824573519), (36.562368097, 13.41228676), align=None)
    cortar_extruir33_tool1 = extrude(cortar_extruir33_sk1.sketch, amount=-CORTAR_EXTRUIR33_REACH, mode=Mode.PRIVATE) & body_2_1.part
    add(cortar_extruir33_tool1.solids().sort_by_distance((-42.658674, 15, 2.186413))[0], mode=Mode.SUBTRACT)

    # Croquis35 → Cortar-Extruir34 (cut, two sides)
    with BuildSketch(Plane(origin=(0, 20, 0), x_dir=(1, 0, 0), z_dir=(0, 1, 0))) as cortar_extruir34_sk:
        with Locations((17.04227466, -3.413432096)):
            Rectangle(CROQUIS35_W, CROQUIS35_H)
    extrude(amount=CORTAR_EXTRUIR34_DEPTH, mode=Mode.SUBTRACT)
    extrude(cortar_extruir34_sk.sketch, amount=-CORTAR_EXTRUIR34_DEPTH_BACK, mode=Mode.SUBTRACT)

    # Croquis36 → Cortar-Extruir35 (cut)
    with BuildSketch(Plane(origin=(20, 0, 0), x_dir=(0, 0, -1), z_dir=(1, 0, 0)).offset(CORTAR_EXTRUIR35_START)):
        Polygon((7.5, 16.58771324), (4.75, 18.175426481), (2, 16.58771324), (2, 13.41228676), (4.75, 11.824573519), (7.5, 13.41228676), align=None)
    extrude(amount=-CORTAR_EXTRUIR35_DEPTH, mode=Mode.SUBTRACT)

    # Croquis37 → Saliente-Extruir8 (add)
    with BuildSketch(Plane.XZ.offset(-10)):
        Polygon((-39.160527763, -4.104491148), (-20.614919368, -20), (-15, -20), (-19.558128305, -15.637570403), (-33.014002756, -4.104491148), align=None)
    extrude(amount=-SALIENTE_EXTRUIR8_DEPTH)

    # Croquis38 → Saliente-Extruir9 (add)
    with BuildSketch(Plane.XZ.offset(-10)):
        Polygon((-58.825, 12.75), (-38.825, 12.75), (-38.825, 9.75), (-55.324839942, 9.75), align=None)
    extrude(amount=SALIENTE_EXTRUIR9_DEPTH)

    # Croquis39 → Saliente-Extruir10 (add)
    with BuildSketch(Plane.XZ.offset(-10)):
        Polygon((-38.825, 9.75), (-38.825, 7.75), (-38.825, 5.75), (-50.657959865, 5.75), (-52.991399903, 7.75), (-55.324839942, 9.75), align=None)
    extrude(amount=SALIENTE_EXTRUIR10_DEPTH)

    # Simetría3: body 2 across face


with BuildPart() as body_2_2:
    add(body_2_1.part)
    add(body_2_1.part.mirror(Plane(origin=(-18.003999227, 20, -4.220503046), x_dir=(0, 0, 1), z_dir=(0, 1, 0))))

    # Croquis40 → Cortar-Extruir36 (cut, two sides)
    with BuildSketch(Plane(origin=(0, 0, -20), x_dir=(-1, 0, 0), z_dir=(0, 0, -1))) as cortar_extruir36_sk:
        with Locations((22.395502026, -3.695757982)):
            Rectangle(CROQUIS40_W, CROQUIS40_H)
    extrude(amount=CORTAR_EXTRUIR36_DEPTH, mode=Mode.SUBTRACT)
    extrude(cortar_extruir36_sk.sketch, amount=-CORTAR_EXTRUIR36_DEPTH_BACK, mode=Mode.SUBTRACT)

    # Croquis41 → Cortar-Extruir37 (cut, two sides)
    with BuildSketch(Plane(origin=(0, 0, -20), x_dir=(-1, 0, 0), z_dir=(0, 0, -1))) as cortar_extruir37_sk:
        with Locations((51.104428454, 39.103117216)):
            Rectangle(CROQUIS41_W, CROQUIS41_H)
    extrude(amount=CORTAR_EXTRUIR37_DEPTH, mode=Mode.SUBTRACT)
    extrude(cortar_extruir37_sk.sketch, amount=-CORTAR_EXTRUIR37_DEPTH_BACK, mode=Mode.SUBTRACT)

    # Croquis42 → Cortar-Extruir38 (cut, two sides)
    with BuildSketch(Plane.XZ.offset(-20)) as cortar_extruir38_sk:
        with Locations((3.646805978, -5.526347597)):
            Rectangle(CROQUIS42_W, CROQUIS42_H)
    extrude(amount=CORTAR_EXTRUIR38_DEPTH, mode=Mode.SUBTRACT)
    extrude(cortar_extruir38_sk.sketch, amount=-CORTAR_EXTRUIR38_DEPTH_BACK, mode=Mode.SUBTRACT)

    # Croquis43 → Saliente-Extruir11 (add)
    with BuildSketch(Plane.XZ.offset(-20)):
        Polygon((-46.844874897, 7.75), (-19.56186566, 7.75), (-19.56186566, -16.371419699), align=None)
    extrude(amount=-SALIENTE_EXTRUIR11_DEPTH)

    # Croquis44 → Cortar-Extruir39 (cut, two sides)
    with BuildSketch(Plane(origin=(0, 30, 0), x_dir=(1, 0, 0), z_dir=(0, 1, 0))) as cortar_extruir39_sk:
        with Locations((-1.25, -0.25)):
            Circle(CROQUIS44_R)
    extrude(amount=CORTAR_EXTRUIR39_DEPTH, mode=Mode.SUBTRACT)
    extrude(cortar_extruir39_sk.sketch, amount=-CORTAR_EXTRUIR39_DEPTH_BACK, mode=Mode.SUBTRACT)

    # Croquis45 → Saliente-Extruir12 (add)
    with BuildSketch(Plane(origin=(0, 30, 0), x_dir=(1, 0, 0), z_dir=(0, 1, 0))):
        Polygon((-33.014002756, 4.104491148), (-39.160527763, 4.104491148), (-20.614919368, 20), (-16.25, 20), (-16.25, 15.264857309), (-19.992980133, 15.264857309), align=None)
    extrude(amount=SALIENTE_EXTRUIR12_DEPTH)

    # Croquis46 → Cortar-Extruir40 (cut, through all)
    with BuildSketch(Plane(origin=(-16.25, 0, 0), x_dir=(0, 0, -1), z_dir=(1, 0, 0))):
        Polygon((9, 20), (20, 46), (20, 20), align=None)
    extrude(amount=-CORTAR_EXTRUIR40_DEPTH, mode=Mode.SUBTRACT)

    # Croquis47 → Saliente-Extruir14 (add)
    with BuildSketch(Plane(origin=(0, -0.193224592, -0.456712673), x_dir=(-1, 0, 0), z_dir=(0, -0.38963999083669787, -0.9209672510685588))):
        Polygon((16.25, 21.834102438), (33.44883958, 21.926104939), (22.720097697, 45.526464663), (16.25, 45.526464663), align=None)
    extrude(amount=-SALIENTE_EXTRUIR14_DEPTH)

    # Croquis48 → Cortar-Extruir41 (cut, two sides)
    with BuildSketch(Plane.XZ.offset(-20)) as cortar_extruir41_sk:
        with Locations((-1.25, 0.25)):
            Circle(CROQUIS48_R)
    extrude(amount=CORTAR_EXTRUIR41_DEPTH, mode=Mode.SUBTRACT)
    extrude(cortar_extruir41_sk.sketch, amount=-CORTAR_EXTRUIR41_DEPTH_BACK, mode=Mode.SUBTRACT)

    # Croquis49 → Cortar-Extruir42 (cut, through all)
    with BuildSketch(Plane.XZ.offset(-20)):
        with Locations((-15, -15)):
            Circle(CROQUIS49_R)
    extrude(amount=-CORTAR_EXTRUIR42_DEPTH, mode=Mode.SUBTRACT)

    # Simetría4: body 2 across plane


with BuildPart() as body_2_3:
    add(body_2_2.part)
    add(body_2_2.part.mirror(Plane(origin=(0, 46, 0), x_dir=(0, 0, 1), z_dir=(0, -1, 0))))

    # Croquis50 → Cortar-Extruir43 (cut, two sides)
    with BuildSketch(Plane(origin=(-18.612848159, 0, -21.715982563), x_dir=(-0.7592713073348843, 0, 0.6507742172658468), z_dir=(-0.6507742172658468, 0, -0.7592713073348843))) as cortar_extruir43_sk:
        with Locations((14.344286106, 20.169352877)):
            Rectangle(CROQUIS50_W, CROQUIS50_H)
    extrude(amount=CORTAR_EXTRUIR43_DEPTH, mode=Mode.SUBTRACT)
    extrude(cortar_extruir43_sk.sketch, amount=-CORTAR_EXTRUIR43_DEPTH_BACK, mode=Mode.SUBTRACT)


solid = body_2_3.part
